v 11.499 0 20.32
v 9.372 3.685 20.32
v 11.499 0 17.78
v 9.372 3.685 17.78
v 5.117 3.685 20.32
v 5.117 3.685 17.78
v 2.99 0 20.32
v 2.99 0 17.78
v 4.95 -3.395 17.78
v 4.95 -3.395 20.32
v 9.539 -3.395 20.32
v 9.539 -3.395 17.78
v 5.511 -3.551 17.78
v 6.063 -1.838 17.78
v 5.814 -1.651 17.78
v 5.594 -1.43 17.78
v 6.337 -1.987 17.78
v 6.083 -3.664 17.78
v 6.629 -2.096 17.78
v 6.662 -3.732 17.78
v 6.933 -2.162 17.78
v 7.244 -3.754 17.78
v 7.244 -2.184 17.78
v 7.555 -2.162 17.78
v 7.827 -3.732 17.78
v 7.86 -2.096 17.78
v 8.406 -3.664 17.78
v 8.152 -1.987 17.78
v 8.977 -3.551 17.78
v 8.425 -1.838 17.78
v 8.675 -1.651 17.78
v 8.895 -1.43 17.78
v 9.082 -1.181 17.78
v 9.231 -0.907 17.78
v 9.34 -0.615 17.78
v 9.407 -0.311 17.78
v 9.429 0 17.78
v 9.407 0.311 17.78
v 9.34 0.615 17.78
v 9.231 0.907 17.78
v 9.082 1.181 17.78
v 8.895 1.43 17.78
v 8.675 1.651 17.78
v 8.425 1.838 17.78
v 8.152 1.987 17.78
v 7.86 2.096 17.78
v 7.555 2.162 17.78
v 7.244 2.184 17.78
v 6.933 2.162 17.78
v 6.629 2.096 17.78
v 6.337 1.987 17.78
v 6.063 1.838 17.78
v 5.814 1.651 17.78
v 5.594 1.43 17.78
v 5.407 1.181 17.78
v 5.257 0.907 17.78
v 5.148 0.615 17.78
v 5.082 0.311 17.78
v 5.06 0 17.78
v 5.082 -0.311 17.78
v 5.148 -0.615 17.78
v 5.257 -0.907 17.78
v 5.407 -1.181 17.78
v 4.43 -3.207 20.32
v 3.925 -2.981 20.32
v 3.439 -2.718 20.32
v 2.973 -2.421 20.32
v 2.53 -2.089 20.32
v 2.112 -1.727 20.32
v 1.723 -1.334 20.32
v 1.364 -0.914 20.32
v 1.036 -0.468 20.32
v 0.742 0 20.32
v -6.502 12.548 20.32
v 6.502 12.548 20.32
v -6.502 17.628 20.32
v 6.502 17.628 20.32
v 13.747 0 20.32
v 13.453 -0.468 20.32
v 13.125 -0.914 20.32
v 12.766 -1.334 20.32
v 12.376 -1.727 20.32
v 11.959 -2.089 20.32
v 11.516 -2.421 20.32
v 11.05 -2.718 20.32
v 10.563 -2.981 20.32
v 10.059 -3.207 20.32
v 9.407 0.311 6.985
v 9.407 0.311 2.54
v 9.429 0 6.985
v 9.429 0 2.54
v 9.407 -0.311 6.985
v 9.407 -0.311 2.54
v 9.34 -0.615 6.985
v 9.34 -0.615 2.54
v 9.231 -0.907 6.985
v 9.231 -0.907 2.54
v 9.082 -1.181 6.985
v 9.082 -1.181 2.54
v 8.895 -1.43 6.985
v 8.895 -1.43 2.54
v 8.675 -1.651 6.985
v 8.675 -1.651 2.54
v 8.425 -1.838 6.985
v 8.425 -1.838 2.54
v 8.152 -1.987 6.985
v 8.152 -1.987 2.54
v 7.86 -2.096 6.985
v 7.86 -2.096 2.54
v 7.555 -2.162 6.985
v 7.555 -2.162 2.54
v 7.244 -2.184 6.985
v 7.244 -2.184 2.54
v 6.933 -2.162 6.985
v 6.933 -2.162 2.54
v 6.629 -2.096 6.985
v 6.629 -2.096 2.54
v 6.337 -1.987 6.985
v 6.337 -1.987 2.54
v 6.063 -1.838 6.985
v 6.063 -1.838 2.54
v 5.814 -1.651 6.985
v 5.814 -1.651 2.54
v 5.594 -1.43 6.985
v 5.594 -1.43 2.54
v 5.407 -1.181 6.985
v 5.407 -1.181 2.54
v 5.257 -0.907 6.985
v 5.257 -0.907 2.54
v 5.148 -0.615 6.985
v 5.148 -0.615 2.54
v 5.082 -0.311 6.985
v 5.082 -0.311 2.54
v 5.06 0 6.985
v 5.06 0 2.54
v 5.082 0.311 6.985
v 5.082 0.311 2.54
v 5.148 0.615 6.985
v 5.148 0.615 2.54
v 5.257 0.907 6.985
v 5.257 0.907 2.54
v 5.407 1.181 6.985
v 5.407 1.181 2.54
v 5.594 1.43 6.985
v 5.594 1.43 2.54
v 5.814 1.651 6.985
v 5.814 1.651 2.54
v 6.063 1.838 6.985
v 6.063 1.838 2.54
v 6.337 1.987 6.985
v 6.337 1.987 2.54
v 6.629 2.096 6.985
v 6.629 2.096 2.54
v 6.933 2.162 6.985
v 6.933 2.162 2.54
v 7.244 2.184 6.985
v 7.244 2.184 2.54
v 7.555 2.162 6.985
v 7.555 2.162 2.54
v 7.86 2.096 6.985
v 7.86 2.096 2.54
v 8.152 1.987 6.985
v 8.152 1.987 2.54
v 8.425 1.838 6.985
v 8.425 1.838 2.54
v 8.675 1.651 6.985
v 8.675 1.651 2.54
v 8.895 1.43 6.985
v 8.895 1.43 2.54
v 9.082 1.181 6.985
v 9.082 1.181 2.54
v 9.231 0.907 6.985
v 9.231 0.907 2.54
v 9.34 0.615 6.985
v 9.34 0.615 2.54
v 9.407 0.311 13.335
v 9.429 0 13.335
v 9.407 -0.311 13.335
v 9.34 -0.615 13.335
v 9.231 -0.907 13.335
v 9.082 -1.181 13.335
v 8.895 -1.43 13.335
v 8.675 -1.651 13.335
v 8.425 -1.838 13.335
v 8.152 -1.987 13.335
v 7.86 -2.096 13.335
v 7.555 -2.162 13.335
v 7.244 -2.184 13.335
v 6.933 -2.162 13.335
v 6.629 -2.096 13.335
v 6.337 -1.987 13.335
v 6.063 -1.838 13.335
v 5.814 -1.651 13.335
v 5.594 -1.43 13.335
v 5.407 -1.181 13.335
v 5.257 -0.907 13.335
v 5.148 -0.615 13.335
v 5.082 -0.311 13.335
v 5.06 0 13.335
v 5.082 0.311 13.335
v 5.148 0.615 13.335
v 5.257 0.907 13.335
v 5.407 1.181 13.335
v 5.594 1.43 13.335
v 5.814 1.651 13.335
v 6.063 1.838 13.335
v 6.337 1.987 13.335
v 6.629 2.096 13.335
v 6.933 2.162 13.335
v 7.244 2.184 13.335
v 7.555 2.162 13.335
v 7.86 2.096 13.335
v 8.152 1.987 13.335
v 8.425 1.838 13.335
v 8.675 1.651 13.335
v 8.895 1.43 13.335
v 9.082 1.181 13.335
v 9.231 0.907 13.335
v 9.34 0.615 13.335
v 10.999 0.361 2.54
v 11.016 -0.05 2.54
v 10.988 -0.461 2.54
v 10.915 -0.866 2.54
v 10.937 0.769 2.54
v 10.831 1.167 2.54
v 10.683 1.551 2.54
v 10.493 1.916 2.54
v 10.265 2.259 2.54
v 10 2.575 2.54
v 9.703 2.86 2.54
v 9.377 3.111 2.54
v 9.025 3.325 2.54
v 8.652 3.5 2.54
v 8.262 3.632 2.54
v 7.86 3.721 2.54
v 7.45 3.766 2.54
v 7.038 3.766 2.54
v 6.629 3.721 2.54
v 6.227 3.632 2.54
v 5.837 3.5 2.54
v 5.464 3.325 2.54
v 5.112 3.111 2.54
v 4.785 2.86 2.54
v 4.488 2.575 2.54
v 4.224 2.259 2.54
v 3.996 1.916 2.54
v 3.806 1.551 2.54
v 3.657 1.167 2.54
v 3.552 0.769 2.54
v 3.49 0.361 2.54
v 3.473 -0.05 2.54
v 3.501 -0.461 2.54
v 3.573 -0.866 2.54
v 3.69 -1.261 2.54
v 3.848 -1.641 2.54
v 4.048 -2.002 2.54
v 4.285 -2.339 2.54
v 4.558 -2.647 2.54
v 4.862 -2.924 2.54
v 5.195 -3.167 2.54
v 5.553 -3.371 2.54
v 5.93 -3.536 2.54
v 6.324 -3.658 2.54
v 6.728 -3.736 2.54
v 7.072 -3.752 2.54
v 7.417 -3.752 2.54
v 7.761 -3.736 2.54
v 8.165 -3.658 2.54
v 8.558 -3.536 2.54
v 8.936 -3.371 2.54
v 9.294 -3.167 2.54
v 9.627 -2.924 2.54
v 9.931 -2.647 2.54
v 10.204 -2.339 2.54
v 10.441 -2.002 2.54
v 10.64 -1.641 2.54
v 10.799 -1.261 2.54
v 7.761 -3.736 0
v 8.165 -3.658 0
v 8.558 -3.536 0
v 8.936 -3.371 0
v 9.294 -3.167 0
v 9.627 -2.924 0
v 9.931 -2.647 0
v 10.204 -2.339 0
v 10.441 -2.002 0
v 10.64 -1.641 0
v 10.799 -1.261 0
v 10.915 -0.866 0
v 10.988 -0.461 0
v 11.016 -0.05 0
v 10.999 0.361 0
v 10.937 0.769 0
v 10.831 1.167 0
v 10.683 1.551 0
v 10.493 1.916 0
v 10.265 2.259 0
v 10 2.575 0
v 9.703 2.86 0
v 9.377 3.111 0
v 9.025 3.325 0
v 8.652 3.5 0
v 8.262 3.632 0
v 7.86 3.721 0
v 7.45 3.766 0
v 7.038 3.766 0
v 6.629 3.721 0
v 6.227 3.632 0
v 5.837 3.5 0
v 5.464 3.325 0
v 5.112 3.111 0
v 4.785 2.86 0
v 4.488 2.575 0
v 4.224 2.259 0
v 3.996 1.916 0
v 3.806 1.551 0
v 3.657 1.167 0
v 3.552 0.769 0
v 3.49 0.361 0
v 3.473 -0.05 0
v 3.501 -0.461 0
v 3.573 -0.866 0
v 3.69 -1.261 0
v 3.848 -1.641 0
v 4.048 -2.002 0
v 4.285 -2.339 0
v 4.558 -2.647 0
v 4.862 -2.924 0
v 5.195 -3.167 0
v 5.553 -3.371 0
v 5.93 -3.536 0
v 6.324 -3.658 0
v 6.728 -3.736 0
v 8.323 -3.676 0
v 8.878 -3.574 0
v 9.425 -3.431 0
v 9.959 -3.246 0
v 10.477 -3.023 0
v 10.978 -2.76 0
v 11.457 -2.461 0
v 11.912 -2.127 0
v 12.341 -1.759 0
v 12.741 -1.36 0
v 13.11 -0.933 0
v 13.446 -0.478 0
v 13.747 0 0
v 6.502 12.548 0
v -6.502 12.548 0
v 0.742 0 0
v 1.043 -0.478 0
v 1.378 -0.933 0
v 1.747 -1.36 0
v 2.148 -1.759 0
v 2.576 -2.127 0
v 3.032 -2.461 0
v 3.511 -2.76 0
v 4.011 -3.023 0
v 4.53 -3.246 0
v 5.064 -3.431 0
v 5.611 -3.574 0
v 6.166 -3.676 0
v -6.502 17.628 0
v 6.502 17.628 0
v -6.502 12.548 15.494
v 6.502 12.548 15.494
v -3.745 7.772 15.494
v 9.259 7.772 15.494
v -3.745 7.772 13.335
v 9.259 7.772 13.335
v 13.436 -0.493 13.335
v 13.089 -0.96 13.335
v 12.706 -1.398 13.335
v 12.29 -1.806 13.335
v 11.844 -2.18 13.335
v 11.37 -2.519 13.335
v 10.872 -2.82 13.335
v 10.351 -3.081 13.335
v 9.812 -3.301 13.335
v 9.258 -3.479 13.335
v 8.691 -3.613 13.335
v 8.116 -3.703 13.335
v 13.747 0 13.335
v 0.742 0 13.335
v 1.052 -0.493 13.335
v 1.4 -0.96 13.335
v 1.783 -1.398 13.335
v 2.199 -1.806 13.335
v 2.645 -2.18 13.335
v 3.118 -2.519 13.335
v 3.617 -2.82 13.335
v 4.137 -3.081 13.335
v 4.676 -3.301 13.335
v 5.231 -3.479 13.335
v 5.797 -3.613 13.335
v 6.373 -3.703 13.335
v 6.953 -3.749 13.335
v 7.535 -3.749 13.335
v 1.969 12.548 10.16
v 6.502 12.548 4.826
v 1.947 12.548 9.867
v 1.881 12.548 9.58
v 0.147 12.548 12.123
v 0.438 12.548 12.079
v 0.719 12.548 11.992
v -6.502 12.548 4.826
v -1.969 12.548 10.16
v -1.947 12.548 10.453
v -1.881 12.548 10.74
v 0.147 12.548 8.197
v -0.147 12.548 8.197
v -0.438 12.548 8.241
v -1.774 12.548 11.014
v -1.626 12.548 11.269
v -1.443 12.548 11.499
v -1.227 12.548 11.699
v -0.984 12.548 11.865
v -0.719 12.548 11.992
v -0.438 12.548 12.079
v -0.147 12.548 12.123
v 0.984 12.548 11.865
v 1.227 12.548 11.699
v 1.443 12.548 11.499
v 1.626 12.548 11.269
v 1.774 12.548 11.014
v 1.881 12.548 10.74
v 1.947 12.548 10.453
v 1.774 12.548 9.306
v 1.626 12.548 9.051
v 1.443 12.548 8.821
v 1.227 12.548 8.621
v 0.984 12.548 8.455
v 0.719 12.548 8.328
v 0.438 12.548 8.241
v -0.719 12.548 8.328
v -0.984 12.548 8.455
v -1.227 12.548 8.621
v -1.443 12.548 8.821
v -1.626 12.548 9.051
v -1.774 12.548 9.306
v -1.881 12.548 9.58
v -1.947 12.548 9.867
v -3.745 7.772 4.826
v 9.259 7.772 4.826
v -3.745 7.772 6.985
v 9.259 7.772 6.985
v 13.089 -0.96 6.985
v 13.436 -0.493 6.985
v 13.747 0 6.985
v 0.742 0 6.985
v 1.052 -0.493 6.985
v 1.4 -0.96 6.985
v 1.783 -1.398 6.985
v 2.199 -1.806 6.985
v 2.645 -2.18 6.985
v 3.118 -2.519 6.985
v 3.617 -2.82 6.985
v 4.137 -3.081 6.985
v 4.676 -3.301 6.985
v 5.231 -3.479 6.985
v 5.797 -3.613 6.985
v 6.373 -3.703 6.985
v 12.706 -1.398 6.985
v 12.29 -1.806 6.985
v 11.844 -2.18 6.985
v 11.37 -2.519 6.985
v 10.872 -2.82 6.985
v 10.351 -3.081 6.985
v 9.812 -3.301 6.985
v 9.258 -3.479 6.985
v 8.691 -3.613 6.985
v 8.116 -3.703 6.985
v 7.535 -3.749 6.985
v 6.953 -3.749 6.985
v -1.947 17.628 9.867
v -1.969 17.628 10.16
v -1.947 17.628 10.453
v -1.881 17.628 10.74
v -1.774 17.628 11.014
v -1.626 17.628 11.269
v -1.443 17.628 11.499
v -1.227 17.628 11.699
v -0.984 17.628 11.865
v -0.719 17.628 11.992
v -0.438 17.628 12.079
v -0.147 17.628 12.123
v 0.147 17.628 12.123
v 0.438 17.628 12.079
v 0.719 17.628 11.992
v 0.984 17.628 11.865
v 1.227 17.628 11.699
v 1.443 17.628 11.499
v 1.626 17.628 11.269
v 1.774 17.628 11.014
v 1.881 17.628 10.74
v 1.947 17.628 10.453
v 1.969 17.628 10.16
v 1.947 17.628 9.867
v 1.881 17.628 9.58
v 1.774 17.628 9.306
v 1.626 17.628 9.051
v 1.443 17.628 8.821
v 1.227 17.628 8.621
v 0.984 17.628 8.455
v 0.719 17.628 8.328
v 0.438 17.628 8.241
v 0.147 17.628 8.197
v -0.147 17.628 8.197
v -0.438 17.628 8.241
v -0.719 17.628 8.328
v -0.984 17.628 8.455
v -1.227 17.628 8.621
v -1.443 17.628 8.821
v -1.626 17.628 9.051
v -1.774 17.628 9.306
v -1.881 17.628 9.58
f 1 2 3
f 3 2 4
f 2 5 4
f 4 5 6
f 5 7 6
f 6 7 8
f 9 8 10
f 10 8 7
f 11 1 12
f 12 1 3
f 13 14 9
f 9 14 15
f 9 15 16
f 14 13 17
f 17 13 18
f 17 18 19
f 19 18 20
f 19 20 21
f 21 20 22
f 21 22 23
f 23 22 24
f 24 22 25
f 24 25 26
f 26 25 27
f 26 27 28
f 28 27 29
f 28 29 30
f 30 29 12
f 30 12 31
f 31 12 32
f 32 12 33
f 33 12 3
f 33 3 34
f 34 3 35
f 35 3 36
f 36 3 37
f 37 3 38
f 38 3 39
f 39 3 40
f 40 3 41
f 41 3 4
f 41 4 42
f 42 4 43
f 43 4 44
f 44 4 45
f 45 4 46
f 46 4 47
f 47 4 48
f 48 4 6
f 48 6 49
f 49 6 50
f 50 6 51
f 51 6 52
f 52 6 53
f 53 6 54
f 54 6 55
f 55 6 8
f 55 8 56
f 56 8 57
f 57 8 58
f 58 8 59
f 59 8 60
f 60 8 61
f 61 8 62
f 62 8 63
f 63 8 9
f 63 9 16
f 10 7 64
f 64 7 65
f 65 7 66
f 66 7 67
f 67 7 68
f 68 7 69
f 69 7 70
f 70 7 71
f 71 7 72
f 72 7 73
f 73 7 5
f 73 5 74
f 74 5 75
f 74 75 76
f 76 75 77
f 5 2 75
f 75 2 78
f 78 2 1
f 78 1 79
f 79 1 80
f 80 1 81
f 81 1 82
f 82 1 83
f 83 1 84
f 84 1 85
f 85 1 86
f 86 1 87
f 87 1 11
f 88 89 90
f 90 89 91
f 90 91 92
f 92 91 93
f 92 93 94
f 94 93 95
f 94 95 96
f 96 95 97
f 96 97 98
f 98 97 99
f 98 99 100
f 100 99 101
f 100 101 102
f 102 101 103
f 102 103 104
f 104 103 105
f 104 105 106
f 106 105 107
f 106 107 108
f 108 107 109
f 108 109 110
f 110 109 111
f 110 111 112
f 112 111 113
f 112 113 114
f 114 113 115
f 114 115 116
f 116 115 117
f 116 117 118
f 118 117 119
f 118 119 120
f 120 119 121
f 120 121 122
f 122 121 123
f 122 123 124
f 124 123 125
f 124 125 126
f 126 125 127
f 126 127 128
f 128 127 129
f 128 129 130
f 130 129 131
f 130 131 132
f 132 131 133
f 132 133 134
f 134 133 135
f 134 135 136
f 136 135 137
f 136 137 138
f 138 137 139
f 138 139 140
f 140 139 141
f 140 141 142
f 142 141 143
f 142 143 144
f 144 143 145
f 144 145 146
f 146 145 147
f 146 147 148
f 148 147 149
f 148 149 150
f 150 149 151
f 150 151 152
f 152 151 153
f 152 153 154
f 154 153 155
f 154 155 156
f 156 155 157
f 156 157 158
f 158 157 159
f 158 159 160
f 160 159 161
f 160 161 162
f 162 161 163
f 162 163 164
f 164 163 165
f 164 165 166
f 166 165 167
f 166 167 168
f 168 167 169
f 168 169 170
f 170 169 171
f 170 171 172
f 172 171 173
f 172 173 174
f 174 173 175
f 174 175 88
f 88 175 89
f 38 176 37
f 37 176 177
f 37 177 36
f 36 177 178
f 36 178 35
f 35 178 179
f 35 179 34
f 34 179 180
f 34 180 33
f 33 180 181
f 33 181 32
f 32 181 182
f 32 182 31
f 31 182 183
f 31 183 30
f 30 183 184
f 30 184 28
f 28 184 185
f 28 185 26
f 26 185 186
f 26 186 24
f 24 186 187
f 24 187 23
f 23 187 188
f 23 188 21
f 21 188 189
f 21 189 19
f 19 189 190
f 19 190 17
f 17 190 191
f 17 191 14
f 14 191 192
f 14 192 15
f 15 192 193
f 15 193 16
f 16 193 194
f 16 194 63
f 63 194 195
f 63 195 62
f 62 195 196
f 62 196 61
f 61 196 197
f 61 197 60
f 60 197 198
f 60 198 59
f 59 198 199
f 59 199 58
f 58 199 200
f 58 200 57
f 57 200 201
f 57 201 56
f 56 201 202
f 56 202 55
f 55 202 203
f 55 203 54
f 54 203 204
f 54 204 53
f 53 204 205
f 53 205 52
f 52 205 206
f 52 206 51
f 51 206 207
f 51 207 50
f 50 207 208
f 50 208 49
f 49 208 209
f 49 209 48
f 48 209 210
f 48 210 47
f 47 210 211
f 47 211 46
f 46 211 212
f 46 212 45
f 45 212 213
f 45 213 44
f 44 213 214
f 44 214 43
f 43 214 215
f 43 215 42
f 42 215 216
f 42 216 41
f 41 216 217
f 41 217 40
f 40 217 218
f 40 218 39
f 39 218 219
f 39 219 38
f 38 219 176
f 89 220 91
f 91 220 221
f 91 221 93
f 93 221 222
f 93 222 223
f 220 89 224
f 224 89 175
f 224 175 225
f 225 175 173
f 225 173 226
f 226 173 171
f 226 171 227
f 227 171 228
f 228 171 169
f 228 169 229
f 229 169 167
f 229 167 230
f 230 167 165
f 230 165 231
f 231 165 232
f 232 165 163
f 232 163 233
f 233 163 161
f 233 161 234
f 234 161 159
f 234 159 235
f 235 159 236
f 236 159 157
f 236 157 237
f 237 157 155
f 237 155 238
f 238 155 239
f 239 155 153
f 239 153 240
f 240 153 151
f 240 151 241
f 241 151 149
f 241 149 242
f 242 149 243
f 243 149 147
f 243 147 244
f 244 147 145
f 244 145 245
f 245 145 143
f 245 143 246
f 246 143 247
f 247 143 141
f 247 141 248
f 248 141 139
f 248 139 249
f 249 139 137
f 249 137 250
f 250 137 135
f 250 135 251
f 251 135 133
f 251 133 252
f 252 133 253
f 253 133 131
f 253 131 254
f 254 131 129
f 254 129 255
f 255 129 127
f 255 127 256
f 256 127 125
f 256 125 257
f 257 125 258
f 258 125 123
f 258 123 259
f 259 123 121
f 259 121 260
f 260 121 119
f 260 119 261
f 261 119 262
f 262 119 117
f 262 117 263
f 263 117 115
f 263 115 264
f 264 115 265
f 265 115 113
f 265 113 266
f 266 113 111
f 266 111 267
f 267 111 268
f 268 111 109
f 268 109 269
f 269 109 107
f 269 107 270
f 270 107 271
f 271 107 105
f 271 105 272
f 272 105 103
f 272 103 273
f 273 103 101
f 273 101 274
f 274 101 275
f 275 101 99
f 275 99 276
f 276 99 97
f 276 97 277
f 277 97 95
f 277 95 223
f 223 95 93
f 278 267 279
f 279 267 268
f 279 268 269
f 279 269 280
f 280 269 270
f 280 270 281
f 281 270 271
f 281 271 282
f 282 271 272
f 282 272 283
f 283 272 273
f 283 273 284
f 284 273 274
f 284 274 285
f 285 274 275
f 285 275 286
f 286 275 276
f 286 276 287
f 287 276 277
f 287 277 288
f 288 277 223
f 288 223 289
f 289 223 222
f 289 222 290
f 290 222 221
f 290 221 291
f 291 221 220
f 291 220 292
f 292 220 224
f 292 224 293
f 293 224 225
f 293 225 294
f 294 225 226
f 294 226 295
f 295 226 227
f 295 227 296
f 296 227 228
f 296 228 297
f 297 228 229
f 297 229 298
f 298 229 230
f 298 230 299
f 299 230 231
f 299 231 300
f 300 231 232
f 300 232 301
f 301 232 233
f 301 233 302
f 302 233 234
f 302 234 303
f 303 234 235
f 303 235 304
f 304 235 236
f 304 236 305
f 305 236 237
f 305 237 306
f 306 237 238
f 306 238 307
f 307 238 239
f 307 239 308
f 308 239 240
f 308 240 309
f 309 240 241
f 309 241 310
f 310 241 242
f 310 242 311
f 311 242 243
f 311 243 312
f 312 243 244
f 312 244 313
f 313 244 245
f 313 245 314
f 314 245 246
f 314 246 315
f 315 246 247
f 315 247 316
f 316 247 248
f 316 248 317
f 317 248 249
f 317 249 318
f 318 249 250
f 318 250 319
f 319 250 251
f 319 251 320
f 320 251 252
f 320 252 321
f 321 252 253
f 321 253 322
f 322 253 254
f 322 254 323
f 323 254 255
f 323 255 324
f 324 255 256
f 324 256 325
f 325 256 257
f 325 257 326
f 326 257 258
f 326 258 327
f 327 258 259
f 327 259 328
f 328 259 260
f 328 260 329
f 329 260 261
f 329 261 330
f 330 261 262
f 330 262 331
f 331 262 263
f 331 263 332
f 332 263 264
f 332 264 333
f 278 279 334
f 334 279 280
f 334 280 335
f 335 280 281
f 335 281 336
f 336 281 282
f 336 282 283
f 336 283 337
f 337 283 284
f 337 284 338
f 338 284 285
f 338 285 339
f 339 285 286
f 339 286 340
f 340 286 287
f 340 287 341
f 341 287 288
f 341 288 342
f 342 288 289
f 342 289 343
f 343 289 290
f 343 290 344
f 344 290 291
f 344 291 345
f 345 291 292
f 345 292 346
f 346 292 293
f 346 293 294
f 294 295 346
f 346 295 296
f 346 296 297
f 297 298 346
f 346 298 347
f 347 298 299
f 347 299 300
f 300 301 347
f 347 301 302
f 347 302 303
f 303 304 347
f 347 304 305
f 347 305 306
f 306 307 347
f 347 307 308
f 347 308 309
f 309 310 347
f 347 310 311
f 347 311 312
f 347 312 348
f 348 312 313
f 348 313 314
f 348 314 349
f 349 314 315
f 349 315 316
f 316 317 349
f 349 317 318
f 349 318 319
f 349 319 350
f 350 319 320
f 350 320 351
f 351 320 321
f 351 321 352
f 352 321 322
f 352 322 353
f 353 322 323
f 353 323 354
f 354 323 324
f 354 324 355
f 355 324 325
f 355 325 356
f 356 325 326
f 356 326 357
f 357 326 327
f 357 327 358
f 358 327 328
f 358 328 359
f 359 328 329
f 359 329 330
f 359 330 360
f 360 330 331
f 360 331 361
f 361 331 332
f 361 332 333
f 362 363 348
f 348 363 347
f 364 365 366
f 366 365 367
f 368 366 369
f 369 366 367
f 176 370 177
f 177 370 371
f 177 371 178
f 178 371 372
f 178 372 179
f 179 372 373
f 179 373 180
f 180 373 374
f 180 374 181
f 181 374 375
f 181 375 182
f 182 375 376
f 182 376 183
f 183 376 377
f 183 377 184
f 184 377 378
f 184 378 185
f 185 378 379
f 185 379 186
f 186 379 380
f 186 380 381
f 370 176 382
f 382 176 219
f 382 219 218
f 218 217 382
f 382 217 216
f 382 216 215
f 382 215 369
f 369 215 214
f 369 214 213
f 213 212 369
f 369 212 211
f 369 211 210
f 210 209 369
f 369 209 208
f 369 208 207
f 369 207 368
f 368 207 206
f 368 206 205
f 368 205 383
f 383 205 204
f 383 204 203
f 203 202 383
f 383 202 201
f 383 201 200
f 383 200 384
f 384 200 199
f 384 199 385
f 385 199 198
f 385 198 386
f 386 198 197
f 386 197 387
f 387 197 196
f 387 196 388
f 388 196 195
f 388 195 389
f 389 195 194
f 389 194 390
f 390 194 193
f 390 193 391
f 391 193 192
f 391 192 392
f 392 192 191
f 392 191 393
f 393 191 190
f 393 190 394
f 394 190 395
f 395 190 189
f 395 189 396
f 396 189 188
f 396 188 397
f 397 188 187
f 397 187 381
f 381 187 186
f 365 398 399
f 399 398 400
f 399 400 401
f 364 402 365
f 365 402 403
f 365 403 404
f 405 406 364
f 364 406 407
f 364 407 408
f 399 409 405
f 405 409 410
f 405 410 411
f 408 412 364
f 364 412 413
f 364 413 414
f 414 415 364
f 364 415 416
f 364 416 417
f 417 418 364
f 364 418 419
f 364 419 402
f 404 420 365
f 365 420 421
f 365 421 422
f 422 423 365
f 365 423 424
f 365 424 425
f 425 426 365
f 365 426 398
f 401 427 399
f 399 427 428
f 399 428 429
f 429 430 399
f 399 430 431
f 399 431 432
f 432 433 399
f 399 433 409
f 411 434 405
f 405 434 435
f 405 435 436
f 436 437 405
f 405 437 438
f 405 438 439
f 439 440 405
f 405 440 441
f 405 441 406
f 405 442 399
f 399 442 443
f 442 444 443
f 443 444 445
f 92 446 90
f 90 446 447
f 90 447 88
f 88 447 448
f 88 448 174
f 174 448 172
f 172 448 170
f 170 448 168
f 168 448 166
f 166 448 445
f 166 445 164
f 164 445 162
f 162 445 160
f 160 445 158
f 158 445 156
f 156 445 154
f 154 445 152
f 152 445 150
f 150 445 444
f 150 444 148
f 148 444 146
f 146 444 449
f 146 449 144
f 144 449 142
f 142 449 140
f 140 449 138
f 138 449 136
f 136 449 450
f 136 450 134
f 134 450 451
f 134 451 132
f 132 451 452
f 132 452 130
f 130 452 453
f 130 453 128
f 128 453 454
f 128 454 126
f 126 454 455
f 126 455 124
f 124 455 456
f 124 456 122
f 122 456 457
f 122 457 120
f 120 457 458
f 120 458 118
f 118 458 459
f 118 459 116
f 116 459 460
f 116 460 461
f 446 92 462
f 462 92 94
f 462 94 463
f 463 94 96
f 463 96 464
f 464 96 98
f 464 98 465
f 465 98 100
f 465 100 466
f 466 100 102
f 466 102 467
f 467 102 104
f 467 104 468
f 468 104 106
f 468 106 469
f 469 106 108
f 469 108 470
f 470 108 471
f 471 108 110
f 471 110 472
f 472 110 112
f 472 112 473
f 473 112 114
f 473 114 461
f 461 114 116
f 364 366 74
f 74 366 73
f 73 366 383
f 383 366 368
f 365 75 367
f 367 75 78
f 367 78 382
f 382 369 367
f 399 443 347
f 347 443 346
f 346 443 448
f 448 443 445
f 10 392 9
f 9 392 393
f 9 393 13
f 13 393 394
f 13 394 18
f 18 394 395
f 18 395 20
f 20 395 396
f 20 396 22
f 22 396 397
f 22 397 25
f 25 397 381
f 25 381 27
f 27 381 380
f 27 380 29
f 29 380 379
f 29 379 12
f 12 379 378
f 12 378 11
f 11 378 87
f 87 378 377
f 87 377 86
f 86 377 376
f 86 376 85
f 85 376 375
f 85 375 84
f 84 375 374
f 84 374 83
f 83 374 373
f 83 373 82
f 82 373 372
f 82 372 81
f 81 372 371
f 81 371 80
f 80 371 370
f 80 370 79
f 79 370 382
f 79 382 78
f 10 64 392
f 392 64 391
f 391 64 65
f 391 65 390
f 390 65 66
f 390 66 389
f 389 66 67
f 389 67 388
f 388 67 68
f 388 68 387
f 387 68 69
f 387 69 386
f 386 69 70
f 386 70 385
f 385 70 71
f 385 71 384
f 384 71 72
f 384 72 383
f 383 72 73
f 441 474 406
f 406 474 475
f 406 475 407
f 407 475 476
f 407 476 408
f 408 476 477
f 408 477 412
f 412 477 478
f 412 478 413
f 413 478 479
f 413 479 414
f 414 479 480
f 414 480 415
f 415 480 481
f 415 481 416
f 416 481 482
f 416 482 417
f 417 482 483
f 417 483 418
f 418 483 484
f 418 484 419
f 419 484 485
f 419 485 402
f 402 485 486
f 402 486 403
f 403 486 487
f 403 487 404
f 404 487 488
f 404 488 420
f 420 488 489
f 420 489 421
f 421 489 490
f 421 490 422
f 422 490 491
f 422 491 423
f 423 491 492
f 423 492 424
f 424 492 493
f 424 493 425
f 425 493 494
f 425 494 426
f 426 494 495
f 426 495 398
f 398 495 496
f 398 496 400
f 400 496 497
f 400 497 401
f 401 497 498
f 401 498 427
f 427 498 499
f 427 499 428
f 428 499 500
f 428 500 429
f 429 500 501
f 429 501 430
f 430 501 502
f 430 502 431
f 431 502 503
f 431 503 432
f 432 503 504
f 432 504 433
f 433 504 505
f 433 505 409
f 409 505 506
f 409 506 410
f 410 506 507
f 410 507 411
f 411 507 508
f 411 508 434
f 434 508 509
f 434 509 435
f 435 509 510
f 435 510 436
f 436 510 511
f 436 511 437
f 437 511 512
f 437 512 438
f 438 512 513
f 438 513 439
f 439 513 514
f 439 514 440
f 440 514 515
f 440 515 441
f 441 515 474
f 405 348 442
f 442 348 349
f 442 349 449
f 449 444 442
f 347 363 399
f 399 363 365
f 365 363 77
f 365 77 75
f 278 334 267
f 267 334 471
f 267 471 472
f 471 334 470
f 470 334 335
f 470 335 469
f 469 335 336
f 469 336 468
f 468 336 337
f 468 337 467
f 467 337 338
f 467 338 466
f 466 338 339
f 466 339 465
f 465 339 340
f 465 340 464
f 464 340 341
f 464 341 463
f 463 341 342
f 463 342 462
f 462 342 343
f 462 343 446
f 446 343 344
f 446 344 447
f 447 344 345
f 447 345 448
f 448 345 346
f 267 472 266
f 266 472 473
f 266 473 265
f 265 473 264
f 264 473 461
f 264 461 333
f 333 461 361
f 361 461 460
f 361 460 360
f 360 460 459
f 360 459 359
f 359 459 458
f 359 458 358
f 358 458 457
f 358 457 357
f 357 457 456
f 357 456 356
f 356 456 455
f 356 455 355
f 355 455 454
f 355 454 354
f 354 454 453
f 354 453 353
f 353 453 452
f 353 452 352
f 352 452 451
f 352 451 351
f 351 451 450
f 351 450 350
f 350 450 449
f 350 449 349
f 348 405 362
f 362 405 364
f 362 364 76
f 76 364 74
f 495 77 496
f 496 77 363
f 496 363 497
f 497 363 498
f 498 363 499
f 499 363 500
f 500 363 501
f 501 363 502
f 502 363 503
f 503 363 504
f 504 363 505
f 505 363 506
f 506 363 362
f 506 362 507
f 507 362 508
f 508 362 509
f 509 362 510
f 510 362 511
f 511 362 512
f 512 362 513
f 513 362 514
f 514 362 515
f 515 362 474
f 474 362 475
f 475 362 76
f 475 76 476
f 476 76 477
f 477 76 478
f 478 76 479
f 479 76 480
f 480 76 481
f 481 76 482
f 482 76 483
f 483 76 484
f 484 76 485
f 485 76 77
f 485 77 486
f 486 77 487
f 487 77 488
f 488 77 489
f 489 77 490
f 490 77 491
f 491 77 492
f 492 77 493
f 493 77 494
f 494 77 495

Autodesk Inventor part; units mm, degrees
ref_plane "YZ Plane" through (0, 0, 0) normal (1, 0, 0) x (0, 1, 0)
ref_plane "XZ Plane" through (0, 0, 0) normal (0, 1, 0) x (-1, 0, 0)
ref_plane "XY Plane" through (0, 0, 0) normal (0, 0, 1) x (1, 0, 0)
sketch "Sketch1" plane through (0, 0, 0) normal (0, 0, 1) x (1, 0, 0)
  line L0 (6.5024, 17.6276) -> (-6.5024, 17.6276)
  line L1 (-6.5024, 12.5476) -> (6.5024, 12.5476) construction
  line L2 (6.5024, 12.5476) -> (13.7468, 0)
  line L3 (6.5024, 12.5476) -> (20.9911, 12.5476) construction
  line L4 (-6.5024, 12.5476) -> (0.742, 0)
  line L5 (-6.5024, 12.5476) -> (7.9863, 12.5476) construction
  line L6 (0, 12.5476) -> (7.2444, 0) construction
  line L7 (0, 12.5476) -> (14.4887, 12.5476) construction
  circle A0 centre (7.2444, 0) radius 2.1844
  circle A1 centre (7.2444, 0) radius 3.7719
  circle A2 centre (7.2444, 0) radius 6.5024 construction
  arc A3 (0.742, 0) -> (13.7468, 0) centre (7.2444, 3.7542) ccw
  line L8 (-6.5024, 17.6276) -> (-6.5024, 12.5476)
  line L9 (6.5024, 17.6276) -> (6.5024, 12.5476)
  point P0 (0, 0)
  dimension "d11" = 17.6276
  dimension "d37" = 5.08
  dimension "d38" = 60
  dimension "d39" = 60
  dimension "d40" = 60
  dimension "d41" = 4.3688
  dimension "d42" = 7.5438
  dimension "d43" = 13.0048
extrude "Extrusion1" add sketch "Sketch1" along normal blind 20.32 contours L9 L2 A3 A1 L4 L8 L0 | A3 A1 | A0 picked at (10.4509, 0.2998)
sketch "Sketch3" plane through (-6.5024, 17.6276, 0) normal (0, 1, 0) x (1, 0, 0)
  line L0 (6.6548, -14.4145) -> (6.6548, -20.32) construction
  line L1 (13.0048, 0) -> (0, 0) construction
  line L2 (6.5024, 0) -> (6.5024, -20.32) construction
  line L3 (13.0048, -20.32) -> (0, -20.32) construction
  line L4 (13.0048, 0) -> (13.0048, -20.32) construction
  line L5 (13.0048, -10.16) -> (0, -10.16) construction
  line L6 (0, 0) -> (0, -20.32) construction
  circle A0 centre (6.5024, -10.16) radius 1.9685 construction
  point P0 (6.5024, 0)
  dimension "d21" = 6.5024
  dimension "d22" = 10.16
  dimension "d23" = 3.937
hole "Hole1" at (0, 17.6276, 10.16) direction (0, -1, 0) diameter 3.937 end through all
sketch "Sketch7" plane through (-6.5024, 12.5476, 0) normal (-1, 0, 0) x (0, 0, 1)
  line L0 (0, 5.08) -> (20.32, 5.08) construction
  line L1 (10.16, 5.08) -> (10.16, -16.3018) construction
  line L2 (0, -16.3018) -> (20.32, -16.3018) construction
  line L3 (0, 0) -> (20.32, 0) projected
  line L4 (10.16, 0) -> (15.494, 0)
  line L5 (10.16, 0) -> (4.826, 0)
  line L6 (4.826, 0) -> (4.826, -4.7752)
  line L7 (15.494, 0) -> (15.494, -4.7752)
  line L8 (10.16, -16.3018) -> (6.985, -16.3018)
  line L9 (10.16, -16.3018) -> (13.335, -16.3018)
  line L10 (6.985, -16.3018) -> (6.985, -4.7752)
  line L11 (6.985, -4.7752) -> (4.826, -4.7752)
  line L12 (13.335, -16.3018) -> (13.335, -4.7752)
  line L13 (13.335, -4.7752) -> (15.494, -4.7752)
  point P0 (0, -12.5476)
  dimension "d47" = 5.334
  dimension "d48" = 5.334
  dimension "d49" = 4.7752
  dimension "d50" = 4.7752
  dimension "d51" = 3.175
  dimension "d52" = 3.175
extrude "Extrusion5" cut sketch "Sketch7" against normal through all
extrude "Extrusion6" cut sketch "Sketch1" along normal blind 2.54 contours A3 A1 | A1 A3 | A0
extrude "Extrusion7" cut sketch "Sketch1" along normal through all contours A0
sketch "Sketch8" plane through (0, 0, 20.32) normal (0, 0, 1) x (1, 0, 0)
  circle A0 centre (7.2444, 0) radius 2.1844 construction
  circle A1 centre (7.2444, 0) radius 4.2545 construction
  line L0 (11.4989, 0) -> (9.0425, -4.2545)
  line L1 (5.4462, -4.2545) -> (2.9899, 0)
  line L2 (2.9899, 0) -> (5.1171, 3.6845)
  line L3 (5.1171, 3.6845) -> (9.3716, 3.6845)
  line L4 (9.3716, 3.6845) -> (11.4989, 0)
  line L5 (5.4462, -4.2545) -> (9.0425, -4.2545)
  point P0 (0, 0)
  point P1 (9.3716, -3.6845)
  point P2 (5.1171, -3.6845)
  dimension "d59" = 8.509
extrude "Extrusion8" cut sketch "Sketch8" against normal blind 2.54
properties part number "omni wheel wheel holder tilted"
